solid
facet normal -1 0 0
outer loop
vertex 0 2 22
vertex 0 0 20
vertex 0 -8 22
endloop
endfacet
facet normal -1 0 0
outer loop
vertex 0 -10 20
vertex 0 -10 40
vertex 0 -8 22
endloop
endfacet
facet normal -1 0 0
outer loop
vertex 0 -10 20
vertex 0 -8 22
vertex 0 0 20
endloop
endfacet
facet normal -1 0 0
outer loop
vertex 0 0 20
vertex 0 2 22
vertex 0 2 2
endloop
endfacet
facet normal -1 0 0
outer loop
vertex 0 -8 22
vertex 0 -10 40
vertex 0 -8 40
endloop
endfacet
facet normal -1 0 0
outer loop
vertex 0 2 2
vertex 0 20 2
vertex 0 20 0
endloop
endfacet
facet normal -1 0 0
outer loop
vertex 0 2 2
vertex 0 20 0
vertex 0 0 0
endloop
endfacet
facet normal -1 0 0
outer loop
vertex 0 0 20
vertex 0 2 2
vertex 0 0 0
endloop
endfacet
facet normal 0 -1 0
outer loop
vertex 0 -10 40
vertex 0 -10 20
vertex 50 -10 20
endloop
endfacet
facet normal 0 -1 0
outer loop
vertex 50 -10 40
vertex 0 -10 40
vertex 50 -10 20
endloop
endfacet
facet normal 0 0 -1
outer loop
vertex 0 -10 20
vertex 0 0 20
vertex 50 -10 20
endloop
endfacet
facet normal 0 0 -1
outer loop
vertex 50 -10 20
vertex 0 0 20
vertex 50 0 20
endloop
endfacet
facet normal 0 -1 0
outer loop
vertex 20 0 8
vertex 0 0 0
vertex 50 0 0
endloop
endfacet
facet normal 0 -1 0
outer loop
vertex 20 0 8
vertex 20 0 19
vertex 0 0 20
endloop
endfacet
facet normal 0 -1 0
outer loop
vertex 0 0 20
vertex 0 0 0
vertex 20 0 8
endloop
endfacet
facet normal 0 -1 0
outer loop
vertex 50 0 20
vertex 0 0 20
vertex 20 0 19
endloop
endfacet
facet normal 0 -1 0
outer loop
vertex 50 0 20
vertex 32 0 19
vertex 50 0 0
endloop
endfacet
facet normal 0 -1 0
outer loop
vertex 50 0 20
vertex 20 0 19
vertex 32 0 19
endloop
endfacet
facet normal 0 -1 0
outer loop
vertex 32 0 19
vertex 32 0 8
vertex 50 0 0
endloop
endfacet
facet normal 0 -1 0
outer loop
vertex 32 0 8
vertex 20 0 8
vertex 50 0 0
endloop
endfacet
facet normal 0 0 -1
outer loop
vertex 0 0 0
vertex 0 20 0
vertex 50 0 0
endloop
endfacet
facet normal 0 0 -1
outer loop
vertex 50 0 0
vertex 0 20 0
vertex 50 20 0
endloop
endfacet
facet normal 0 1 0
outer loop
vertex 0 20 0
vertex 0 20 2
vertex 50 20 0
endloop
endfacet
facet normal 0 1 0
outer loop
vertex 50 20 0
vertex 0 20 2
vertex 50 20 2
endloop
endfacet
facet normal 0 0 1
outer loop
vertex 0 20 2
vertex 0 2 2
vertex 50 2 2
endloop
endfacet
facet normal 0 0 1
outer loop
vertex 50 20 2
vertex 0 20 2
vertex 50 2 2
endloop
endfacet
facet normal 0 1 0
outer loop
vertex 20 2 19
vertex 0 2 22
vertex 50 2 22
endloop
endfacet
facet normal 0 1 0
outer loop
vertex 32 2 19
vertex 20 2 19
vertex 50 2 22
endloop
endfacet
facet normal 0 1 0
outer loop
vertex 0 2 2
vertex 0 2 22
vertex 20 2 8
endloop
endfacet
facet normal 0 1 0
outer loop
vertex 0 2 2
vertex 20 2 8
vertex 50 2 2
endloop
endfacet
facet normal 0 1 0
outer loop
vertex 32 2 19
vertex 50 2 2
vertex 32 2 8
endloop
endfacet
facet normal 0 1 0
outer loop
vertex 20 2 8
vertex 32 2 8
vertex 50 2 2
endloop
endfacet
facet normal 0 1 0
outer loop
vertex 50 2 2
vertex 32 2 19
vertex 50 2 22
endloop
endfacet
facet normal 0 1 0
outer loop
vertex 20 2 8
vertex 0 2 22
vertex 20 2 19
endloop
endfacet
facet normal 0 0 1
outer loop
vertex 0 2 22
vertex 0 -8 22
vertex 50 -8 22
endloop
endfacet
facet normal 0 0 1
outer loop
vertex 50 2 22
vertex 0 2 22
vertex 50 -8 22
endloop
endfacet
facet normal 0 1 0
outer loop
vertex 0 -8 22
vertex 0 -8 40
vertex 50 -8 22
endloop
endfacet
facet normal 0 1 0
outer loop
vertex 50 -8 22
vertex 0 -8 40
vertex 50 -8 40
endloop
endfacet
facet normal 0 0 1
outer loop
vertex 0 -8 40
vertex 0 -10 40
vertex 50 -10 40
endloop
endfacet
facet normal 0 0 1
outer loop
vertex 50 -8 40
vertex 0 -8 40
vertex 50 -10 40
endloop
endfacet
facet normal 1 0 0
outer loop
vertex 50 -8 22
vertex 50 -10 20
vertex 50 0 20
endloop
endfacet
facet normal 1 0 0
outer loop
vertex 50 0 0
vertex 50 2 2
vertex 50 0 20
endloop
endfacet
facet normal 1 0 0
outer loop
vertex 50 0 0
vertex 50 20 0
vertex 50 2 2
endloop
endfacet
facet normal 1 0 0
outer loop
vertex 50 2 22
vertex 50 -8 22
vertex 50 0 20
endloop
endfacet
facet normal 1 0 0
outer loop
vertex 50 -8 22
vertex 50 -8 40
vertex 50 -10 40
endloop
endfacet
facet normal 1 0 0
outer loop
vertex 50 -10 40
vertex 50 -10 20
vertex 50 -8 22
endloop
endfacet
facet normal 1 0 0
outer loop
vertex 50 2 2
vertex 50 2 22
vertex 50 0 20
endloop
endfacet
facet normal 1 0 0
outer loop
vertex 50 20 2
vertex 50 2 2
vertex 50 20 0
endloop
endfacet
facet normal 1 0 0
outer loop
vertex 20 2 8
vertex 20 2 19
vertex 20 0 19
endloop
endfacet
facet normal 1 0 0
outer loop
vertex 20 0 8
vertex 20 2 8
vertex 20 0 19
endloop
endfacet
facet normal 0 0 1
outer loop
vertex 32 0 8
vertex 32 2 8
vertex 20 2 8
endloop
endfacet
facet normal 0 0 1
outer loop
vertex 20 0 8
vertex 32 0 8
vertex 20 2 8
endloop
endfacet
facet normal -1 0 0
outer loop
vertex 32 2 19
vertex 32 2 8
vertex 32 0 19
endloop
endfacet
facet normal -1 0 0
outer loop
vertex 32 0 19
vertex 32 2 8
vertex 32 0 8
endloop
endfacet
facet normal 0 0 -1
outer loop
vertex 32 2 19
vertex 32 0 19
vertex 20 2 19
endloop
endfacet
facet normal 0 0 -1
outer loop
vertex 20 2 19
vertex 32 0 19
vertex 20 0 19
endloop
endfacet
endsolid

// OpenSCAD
$fn = 50;

// bottom
cube([50, 20, 2]);

// extension left
translate([0, -10, 20])
cube([50, 2, 20]);

// extension bottom
translate([0, -10, 20])
cube([50, 12, 2]);

// front bottom
difference() {
	cube([50, 2, 20]);
	// arduino usb
	translate([20, -0.5, 8]) cube([12, 3, 11]);
}
